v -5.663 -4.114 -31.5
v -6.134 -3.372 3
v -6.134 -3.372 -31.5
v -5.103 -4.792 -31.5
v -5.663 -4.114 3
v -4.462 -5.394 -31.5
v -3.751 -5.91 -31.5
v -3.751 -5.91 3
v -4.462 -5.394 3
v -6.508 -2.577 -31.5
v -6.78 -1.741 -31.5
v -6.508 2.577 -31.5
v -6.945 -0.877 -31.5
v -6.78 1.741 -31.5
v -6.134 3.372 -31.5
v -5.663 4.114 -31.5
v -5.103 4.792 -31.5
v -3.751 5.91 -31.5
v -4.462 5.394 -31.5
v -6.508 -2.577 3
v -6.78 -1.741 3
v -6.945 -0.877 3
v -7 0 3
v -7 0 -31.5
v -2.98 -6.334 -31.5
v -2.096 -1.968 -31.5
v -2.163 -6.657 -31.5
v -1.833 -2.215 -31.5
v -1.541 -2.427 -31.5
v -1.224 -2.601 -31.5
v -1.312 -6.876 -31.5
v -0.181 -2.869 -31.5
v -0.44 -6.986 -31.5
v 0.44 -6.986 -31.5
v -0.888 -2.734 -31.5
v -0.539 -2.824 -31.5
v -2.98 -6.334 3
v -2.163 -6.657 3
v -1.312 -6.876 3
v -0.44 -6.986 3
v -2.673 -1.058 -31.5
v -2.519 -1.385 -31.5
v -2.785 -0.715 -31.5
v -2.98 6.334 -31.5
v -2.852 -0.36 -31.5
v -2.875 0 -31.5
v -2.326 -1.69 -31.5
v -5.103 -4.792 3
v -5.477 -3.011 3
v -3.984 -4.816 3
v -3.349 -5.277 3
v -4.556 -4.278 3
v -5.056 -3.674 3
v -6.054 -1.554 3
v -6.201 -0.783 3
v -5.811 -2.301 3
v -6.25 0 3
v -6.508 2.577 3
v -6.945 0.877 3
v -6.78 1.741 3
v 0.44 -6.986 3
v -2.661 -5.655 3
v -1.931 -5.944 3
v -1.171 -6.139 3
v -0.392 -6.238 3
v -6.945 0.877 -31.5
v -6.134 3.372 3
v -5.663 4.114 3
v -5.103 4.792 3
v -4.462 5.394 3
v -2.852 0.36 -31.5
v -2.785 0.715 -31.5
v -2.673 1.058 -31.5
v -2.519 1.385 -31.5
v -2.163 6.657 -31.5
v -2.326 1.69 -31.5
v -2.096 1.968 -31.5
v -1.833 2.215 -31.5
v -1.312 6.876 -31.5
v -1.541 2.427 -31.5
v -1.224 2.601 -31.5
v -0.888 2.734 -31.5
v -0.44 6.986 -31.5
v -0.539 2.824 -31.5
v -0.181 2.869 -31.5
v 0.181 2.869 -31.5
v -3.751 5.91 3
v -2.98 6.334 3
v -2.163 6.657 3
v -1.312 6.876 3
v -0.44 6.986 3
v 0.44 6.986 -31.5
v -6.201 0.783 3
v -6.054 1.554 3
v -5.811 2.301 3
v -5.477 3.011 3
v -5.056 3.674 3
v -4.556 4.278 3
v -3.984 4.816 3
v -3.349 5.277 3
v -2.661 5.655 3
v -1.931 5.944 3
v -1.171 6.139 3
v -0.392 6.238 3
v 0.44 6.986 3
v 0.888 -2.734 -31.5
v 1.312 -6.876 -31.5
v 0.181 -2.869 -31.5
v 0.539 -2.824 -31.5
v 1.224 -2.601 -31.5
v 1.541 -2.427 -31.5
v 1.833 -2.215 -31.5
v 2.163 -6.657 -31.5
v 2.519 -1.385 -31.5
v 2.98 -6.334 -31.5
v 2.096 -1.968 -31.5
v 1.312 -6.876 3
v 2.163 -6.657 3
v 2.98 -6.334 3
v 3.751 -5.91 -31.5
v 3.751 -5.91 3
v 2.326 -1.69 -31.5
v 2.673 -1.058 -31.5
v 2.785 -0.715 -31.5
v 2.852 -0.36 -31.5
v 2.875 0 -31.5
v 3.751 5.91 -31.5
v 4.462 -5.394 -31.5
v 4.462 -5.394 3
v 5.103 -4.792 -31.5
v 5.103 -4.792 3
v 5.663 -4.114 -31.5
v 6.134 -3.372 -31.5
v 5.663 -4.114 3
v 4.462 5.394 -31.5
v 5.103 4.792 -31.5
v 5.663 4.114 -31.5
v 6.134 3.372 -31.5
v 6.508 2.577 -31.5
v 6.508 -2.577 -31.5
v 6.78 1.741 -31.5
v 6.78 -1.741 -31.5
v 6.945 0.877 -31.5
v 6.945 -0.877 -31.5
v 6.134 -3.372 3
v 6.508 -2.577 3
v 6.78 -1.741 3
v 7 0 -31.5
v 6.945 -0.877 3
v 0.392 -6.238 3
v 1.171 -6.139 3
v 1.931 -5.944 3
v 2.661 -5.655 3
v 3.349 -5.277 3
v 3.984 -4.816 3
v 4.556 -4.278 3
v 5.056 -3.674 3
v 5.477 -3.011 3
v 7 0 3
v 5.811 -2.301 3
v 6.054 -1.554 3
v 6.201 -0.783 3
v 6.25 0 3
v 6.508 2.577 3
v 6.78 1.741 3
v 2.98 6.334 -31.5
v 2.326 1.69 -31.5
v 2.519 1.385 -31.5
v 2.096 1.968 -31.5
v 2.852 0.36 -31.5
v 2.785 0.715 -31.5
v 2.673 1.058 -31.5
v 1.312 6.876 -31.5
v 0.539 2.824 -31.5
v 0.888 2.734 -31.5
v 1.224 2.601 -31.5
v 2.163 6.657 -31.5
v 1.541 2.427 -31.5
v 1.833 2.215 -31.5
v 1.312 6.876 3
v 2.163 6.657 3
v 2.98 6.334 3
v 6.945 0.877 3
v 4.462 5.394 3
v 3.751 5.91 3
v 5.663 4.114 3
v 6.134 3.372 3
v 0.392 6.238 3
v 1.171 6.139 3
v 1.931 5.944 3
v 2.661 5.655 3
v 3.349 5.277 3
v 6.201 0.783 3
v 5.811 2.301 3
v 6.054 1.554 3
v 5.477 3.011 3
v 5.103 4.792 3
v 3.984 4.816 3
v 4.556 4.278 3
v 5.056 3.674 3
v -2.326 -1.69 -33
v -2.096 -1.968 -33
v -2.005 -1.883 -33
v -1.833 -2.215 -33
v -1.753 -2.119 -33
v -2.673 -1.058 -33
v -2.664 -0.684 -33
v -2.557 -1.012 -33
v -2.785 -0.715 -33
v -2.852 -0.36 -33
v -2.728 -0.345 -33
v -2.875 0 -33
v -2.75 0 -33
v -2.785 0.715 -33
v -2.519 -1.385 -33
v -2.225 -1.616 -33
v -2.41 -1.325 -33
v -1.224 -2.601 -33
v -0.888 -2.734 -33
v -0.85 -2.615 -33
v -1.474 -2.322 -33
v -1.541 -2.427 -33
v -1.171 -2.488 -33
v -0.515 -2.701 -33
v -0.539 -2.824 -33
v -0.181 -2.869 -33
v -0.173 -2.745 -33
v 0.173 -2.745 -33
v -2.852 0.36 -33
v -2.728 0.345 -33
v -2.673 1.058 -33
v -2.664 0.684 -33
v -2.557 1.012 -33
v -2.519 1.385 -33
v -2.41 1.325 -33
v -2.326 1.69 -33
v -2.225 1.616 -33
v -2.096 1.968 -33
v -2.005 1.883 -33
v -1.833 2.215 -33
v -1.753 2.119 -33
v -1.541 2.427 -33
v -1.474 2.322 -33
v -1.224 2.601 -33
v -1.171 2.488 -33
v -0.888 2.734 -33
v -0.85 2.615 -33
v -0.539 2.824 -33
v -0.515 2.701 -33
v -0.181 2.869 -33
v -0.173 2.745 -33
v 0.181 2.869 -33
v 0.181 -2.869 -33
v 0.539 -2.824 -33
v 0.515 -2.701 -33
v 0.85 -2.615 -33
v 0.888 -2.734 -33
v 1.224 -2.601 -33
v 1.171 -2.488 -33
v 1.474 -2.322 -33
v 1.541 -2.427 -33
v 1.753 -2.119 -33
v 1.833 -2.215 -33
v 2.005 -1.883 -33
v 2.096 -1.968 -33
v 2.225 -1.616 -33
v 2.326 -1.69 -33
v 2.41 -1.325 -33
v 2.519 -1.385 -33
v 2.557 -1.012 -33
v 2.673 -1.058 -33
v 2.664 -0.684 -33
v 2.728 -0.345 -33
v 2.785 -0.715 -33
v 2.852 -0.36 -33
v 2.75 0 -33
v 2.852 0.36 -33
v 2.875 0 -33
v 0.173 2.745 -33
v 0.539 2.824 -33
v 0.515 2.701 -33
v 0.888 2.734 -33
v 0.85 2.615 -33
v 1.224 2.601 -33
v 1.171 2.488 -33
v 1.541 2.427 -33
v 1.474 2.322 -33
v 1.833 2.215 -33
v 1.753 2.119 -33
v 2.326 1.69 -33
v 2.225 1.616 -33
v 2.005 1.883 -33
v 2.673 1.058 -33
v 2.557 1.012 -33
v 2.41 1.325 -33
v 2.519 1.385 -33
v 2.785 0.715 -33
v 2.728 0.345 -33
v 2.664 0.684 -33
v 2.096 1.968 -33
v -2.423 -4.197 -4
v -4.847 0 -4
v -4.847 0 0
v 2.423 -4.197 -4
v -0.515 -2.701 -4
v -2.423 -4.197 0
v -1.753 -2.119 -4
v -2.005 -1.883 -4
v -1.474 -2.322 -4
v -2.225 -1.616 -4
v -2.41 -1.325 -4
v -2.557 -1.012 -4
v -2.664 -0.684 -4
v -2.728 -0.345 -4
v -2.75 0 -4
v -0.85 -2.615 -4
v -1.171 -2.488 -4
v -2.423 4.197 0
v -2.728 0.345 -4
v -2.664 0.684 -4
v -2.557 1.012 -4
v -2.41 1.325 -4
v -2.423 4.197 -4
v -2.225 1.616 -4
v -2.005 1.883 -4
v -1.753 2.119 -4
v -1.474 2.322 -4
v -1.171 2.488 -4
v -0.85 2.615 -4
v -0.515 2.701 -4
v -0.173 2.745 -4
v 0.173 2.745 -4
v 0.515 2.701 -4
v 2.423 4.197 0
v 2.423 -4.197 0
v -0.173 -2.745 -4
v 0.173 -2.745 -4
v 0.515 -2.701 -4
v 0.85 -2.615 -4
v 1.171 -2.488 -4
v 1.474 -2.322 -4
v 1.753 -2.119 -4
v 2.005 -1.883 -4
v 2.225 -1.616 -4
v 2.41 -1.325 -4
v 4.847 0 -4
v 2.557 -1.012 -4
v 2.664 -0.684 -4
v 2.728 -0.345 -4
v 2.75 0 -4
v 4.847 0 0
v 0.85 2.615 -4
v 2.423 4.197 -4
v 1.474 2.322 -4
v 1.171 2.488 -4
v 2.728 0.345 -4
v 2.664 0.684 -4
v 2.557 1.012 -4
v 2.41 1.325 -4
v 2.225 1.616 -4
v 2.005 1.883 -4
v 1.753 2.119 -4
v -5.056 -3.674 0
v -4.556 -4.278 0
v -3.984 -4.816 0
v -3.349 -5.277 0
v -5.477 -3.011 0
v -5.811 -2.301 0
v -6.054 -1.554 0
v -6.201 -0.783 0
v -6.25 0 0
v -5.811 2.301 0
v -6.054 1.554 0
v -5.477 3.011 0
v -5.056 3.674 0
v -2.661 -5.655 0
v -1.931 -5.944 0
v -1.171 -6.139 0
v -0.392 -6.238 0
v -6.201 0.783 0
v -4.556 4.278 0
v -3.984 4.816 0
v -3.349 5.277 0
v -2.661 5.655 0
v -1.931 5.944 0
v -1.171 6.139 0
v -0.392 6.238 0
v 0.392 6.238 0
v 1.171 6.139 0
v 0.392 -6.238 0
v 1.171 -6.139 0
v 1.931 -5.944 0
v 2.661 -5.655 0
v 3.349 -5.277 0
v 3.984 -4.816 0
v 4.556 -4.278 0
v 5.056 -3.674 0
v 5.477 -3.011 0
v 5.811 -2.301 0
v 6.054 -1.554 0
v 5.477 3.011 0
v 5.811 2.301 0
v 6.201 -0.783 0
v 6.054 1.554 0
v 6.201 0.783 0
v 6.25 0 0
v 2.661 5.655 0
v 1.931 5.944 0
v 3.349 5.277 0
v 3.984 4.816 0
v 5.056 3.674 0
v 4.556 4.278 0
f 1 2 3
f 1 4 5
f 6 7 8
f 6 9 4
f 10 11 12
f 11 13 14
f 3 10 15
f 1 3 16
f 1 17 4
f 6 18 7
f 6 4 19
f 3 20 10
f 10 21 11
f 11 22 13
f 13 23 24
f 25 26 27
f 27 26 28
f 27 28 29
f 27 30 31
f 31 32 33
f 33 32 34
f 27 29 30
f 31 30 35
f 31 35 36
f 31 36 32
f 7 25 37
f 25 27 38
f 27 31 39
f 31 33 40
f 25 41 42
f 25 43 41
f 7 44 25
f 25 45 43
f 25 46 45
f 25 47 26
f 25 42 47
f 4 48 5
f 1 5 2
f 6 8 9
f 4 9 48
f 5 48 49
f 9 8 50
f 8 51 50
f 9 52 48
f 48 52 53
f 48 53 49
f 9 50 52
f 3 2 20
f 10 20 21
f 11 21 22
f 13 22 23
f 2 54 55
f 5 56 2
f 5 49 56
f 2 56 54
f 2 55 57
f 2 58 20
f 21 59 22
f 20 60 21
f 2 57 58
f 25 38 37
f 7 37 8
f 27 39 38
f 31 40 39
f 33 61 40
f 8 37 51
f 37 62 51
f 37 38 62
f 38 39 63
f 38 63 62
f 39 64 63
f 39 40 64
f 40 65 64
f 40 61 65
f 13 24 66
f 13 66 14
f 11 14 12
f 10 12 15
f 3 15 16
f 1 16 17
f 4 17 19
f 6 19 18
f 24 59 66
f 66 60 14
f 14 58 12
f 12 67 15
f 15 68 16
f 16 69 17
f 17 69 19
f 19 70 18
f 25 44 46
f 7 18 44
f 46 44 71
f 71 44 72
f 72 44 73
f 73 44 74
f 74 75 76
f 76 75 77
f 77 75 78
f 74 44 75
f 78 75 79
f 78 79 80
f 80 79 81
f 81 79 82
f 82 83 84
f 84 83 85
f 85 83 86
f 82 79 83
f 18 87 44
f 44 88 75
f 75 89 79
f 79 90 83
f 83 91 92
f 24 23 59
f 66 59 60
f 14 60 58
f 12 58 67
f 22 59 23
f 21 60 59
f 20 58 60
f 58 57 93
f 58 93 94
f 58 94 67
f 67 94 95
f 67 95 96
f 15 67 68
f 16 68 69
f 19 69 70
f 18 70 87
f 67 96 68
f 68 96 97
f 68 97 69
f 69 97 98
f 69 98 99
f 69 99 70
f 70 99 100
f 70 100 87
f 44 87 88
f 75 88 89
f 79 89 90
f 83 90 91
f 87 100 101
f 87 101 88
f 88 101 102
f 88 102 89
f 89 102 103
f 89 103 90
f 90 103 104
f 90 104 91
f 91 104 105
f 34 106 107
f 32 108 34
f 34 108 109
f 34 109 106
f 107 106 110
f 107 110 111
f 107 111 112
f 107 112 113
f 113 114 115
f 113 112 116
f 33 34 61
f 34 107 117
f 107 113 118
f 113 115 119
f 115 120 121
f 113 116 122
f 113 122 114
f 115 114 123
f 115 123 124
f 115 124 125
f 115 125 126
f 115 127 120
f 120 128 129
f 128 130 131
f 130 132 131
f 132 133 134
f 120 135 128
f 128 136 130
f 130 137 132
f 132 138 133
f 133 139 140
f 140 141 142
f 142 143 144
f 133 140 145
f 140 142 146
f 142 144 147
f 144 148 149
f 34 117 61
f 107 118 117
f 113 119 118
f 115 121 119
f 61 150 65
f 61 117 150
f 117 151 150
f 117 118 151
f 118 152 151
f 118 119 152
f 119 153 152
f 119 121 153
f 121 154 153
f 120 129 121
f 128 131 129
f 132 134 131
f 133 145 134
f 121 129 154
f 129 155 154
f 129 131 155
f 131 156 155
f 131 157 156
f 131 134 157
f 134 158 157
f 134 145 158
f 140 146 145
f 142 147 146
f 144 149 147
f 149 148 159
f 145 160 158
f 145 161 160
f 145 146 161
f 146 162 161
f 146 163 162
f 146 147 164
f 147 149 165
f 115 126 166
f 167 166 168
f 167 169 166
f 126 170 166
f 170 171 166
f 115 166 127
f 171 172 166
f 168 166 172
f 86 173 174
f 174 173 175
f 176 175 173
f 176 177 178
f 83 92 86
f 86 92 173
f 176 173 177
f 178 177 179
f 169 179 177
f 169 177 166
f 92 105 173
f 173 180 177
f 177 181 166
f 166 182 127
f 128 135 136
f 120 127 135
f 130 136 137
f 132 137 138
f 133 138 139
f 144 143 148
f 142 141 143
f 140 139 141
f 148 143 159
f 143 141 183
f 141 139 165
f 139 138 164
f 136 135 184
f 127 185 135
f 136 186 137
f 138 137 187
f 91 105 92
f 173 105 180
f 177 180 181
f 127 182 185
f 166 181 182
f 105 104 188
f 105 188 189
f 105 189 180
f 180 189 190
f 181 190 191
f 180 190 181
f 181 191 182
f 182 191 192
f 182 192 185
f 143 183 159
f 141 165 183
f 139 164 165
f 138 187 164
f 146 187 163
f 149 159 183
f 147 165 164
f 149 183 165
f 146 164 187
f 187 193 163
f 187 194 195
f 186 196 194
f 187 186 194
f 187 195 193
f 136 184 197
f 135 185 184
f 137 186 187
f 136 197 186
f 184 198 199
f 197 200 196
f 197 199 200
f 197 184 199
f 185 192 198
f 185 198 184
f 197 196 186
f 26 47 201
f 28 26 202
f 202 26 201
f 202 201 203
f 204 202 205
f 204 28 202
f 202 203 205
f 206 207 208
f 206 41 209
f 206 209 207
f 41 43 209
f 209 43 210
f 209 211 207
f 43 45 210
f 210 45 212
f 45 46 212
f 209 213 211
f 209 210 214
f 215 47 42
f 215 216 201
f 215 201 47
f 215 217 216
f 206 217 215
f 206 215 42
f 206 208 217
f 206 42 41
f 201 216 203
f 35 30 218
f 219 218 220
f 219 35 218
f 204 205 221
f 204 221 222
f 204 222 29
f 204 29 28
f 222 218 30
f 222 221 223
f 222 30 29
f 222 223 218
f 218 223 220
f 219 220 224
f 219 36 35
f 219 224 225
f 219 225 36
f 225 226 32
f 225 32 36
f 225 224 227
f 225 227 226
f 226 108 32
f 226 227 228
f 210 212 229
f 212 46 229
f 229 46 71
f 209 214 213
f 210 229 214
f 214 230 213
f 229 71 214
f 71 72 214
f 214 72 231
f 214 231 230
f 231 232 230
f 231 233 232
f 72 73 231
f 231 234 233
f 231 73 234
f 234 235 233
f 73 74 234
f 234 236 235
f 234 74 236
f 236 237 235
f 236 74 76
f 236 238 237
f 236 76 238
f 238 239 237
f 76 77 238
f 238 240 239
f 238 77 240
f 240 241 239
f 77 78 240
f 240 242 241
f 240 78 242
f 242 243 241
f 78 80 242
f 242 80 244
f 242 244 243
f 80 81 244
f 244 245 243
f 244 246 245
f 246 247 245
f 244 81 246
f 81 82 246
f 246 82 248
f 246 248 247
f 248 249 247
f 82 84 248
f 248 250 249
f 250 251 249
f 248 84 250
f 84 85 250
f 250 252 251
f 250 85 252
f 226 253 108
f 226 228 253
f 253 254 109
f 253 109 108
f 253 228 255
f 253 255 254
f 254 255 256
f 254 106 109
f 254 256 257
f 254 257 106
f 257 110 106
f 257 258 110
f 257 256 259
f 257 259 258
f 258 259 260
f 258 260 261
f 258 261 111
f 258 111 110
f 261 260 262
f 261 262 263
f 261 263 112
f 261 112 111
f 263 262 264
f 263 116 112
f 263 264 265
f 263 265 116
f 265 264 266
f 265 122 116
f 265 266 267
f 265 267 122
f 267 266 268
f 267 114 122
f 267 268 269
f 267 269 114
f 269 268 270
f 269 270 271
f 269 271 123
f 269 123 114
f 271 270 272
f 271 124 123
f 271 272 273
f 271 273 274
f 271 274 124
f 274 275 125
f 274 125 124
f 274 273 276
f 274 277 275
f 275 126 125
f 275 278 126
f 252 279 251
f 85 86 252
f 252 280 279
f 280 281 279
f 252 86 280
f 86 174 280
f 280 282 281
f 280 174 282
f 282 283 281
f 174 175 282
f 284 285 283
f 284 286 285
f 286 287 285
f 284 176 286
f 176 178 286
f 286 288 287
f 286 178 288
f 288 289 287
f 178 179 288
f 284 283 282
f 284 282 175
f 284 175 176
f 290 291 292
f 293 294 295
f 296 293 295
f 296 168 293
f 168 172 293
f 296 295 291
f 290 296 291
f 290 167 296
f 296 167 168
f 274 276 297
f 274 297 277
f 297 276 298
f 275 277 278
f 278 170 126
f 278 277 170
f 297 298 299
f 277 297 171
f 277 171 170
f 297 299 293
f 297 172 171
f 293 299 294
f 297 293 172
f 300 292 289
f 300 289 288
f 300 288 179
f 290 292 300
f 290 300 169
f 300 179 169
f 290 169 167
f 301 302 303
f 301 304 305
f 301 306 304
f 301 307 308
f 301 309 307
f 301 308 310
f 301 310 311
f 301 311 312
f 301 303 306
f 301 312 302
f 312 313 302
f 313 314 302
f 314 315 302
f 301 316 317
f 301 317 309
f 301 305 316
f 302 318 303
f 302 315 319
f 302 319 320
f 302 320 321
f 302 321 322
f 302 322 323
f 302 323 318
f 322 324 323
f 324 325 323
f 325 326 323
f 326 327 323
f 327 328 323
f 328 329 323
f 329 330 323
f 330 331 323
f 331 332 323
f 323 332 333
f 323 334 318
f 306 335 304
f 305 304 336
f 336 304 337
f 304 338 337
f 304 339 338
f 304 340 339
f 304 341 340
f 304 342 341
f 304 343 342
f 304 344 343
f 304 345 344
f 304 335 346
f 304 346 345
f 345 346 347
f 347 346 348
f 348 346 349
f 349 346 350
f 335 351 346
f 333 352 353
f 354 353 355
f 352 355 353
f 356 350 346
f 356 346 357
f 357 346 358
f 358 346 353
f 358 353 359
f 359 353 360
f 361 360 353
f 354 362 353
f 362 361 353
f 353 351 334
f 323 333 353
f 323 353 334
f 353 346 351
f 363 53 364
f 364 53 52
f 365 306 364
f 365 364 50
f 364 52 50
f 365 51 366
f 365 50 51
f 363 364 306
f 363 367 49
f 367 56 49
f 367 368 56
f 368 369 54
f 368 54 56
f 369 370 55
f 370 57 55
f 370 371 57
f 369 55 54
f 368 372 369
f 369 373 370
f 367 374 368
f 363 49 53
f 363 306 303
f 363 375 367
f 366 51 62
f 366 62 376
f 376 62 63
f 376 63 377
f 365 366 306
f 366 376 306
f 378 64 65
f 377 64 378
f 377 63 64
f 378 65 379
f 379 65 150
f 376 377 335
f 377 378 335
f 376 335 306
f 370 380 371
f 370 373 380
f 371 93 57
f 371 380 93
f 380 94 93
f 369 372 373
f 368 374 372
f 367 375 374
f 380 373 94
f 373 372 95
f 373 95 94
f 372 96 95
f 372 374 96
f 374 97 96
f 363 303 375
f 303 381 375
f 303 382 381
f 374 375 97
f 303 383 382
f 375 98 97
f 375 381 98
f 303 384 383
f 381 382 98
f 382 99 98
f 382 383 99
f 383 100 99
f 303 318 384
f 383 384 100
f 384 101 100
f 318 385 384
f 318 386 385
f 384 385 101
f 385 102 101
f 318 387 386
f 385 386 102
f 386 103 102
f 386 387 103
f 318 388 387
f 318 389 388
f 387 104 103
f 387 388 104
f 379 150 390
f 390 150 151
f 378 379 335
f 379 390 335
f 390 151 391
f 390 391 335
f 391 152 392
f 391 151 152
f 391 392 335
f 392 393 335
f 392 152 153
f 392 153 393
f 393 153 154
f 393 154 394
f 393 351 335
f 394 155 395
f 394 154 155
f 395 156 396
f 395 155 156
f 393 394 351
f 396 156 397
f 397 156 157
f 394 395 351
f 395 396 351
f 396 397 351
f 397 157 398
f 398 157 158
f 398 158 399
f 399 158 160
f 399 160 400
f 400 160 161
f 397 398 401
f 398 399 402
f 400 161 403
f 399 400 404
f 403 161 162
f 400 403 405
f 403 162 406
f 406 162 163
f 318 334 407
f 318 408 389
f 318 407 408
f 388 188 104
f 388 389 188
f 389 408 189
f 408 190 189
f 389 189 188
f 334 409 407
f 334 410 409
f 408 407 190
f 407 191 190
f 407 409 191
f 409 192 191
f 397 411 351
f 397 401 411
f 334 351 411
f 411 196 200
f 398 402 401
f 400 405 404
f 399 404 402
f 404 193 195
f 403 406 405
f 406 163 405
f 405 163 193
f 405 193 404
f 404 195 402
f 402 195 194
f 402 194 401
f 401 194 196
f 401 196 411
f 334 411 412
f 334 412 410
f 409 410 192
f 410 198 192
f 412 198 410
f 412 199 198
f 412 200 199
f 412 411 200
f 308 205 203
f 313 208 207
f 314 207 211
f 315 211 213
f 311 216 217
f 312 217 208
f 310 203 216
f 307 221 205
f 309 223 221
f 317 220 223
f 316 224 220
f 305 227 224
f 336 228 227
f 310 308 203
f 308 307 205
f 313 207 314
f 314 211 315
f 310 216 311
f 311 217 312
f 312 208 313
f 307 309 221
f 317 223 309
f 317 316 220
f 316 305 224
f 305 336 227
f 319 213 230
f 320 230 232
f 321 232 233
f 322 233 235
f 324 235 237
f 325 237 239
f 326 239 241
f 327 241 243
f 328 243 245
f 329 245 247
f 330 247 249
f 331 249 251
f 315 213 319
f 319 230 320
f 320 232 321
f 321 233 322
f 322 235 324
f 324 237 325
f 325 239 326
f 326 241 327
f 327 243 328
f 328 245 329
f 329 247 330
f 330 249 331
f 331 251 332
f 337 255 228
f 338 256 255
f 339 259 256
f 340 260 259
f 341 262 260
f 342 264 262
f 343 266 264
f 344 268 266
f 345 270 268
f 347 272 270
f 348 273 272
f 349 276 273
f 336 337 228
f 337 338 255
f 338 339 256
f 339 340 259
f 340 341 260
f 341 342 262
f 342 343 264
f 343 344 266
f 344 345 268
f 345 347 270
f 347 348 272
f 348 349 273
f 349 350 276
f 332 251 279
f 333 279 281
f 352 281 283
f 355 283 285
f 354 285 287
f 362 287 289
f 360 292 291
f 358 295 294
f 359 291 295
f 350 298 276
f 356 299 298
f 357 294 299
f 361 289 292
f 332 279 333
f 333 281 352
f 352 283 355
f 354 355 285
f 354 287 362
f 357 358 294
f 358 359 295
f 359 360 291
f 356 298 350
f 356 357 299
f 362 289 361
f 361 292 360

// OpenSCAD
$fn = 50;


difference() {
	union() {
		translate(v = [0, 0, -31.5000000000]) {
			cylinder(h = 34.5000000000, r = 7.0000000000);
		}
		#translate(v = [0, 0, -33.0000000000]) {
			cylinder(h = 33, r = 2.8750000000);
		}
	}
	union() {
		translate(v = [0, 0, 0]) {
			rotate(a = [0, 0, 0]) {
				difference() {
					union() {
						translate(v = [0, 0, -4]) {
							linear_extrude(height = 4) {
								polygon(points = [[4.8468000000, 0.0000000000], [2.4234000000, 4.1974519271], [-2.4234000000, 4.1974519271], [-4.8468000000, 0.0000000000], [-2.4234000000, -4.1974519271], [2.4234000000, -4.1974519271]]);
							}
						}
					}
					union();
				}
			}
		}
		#cylinder(h = 3, r = 6.2500000000);
		#translate(v = [0, 0, -100.0000000000]) {
			cylinder(h = 200, r = 2.7500000000);
		}
	}
}
